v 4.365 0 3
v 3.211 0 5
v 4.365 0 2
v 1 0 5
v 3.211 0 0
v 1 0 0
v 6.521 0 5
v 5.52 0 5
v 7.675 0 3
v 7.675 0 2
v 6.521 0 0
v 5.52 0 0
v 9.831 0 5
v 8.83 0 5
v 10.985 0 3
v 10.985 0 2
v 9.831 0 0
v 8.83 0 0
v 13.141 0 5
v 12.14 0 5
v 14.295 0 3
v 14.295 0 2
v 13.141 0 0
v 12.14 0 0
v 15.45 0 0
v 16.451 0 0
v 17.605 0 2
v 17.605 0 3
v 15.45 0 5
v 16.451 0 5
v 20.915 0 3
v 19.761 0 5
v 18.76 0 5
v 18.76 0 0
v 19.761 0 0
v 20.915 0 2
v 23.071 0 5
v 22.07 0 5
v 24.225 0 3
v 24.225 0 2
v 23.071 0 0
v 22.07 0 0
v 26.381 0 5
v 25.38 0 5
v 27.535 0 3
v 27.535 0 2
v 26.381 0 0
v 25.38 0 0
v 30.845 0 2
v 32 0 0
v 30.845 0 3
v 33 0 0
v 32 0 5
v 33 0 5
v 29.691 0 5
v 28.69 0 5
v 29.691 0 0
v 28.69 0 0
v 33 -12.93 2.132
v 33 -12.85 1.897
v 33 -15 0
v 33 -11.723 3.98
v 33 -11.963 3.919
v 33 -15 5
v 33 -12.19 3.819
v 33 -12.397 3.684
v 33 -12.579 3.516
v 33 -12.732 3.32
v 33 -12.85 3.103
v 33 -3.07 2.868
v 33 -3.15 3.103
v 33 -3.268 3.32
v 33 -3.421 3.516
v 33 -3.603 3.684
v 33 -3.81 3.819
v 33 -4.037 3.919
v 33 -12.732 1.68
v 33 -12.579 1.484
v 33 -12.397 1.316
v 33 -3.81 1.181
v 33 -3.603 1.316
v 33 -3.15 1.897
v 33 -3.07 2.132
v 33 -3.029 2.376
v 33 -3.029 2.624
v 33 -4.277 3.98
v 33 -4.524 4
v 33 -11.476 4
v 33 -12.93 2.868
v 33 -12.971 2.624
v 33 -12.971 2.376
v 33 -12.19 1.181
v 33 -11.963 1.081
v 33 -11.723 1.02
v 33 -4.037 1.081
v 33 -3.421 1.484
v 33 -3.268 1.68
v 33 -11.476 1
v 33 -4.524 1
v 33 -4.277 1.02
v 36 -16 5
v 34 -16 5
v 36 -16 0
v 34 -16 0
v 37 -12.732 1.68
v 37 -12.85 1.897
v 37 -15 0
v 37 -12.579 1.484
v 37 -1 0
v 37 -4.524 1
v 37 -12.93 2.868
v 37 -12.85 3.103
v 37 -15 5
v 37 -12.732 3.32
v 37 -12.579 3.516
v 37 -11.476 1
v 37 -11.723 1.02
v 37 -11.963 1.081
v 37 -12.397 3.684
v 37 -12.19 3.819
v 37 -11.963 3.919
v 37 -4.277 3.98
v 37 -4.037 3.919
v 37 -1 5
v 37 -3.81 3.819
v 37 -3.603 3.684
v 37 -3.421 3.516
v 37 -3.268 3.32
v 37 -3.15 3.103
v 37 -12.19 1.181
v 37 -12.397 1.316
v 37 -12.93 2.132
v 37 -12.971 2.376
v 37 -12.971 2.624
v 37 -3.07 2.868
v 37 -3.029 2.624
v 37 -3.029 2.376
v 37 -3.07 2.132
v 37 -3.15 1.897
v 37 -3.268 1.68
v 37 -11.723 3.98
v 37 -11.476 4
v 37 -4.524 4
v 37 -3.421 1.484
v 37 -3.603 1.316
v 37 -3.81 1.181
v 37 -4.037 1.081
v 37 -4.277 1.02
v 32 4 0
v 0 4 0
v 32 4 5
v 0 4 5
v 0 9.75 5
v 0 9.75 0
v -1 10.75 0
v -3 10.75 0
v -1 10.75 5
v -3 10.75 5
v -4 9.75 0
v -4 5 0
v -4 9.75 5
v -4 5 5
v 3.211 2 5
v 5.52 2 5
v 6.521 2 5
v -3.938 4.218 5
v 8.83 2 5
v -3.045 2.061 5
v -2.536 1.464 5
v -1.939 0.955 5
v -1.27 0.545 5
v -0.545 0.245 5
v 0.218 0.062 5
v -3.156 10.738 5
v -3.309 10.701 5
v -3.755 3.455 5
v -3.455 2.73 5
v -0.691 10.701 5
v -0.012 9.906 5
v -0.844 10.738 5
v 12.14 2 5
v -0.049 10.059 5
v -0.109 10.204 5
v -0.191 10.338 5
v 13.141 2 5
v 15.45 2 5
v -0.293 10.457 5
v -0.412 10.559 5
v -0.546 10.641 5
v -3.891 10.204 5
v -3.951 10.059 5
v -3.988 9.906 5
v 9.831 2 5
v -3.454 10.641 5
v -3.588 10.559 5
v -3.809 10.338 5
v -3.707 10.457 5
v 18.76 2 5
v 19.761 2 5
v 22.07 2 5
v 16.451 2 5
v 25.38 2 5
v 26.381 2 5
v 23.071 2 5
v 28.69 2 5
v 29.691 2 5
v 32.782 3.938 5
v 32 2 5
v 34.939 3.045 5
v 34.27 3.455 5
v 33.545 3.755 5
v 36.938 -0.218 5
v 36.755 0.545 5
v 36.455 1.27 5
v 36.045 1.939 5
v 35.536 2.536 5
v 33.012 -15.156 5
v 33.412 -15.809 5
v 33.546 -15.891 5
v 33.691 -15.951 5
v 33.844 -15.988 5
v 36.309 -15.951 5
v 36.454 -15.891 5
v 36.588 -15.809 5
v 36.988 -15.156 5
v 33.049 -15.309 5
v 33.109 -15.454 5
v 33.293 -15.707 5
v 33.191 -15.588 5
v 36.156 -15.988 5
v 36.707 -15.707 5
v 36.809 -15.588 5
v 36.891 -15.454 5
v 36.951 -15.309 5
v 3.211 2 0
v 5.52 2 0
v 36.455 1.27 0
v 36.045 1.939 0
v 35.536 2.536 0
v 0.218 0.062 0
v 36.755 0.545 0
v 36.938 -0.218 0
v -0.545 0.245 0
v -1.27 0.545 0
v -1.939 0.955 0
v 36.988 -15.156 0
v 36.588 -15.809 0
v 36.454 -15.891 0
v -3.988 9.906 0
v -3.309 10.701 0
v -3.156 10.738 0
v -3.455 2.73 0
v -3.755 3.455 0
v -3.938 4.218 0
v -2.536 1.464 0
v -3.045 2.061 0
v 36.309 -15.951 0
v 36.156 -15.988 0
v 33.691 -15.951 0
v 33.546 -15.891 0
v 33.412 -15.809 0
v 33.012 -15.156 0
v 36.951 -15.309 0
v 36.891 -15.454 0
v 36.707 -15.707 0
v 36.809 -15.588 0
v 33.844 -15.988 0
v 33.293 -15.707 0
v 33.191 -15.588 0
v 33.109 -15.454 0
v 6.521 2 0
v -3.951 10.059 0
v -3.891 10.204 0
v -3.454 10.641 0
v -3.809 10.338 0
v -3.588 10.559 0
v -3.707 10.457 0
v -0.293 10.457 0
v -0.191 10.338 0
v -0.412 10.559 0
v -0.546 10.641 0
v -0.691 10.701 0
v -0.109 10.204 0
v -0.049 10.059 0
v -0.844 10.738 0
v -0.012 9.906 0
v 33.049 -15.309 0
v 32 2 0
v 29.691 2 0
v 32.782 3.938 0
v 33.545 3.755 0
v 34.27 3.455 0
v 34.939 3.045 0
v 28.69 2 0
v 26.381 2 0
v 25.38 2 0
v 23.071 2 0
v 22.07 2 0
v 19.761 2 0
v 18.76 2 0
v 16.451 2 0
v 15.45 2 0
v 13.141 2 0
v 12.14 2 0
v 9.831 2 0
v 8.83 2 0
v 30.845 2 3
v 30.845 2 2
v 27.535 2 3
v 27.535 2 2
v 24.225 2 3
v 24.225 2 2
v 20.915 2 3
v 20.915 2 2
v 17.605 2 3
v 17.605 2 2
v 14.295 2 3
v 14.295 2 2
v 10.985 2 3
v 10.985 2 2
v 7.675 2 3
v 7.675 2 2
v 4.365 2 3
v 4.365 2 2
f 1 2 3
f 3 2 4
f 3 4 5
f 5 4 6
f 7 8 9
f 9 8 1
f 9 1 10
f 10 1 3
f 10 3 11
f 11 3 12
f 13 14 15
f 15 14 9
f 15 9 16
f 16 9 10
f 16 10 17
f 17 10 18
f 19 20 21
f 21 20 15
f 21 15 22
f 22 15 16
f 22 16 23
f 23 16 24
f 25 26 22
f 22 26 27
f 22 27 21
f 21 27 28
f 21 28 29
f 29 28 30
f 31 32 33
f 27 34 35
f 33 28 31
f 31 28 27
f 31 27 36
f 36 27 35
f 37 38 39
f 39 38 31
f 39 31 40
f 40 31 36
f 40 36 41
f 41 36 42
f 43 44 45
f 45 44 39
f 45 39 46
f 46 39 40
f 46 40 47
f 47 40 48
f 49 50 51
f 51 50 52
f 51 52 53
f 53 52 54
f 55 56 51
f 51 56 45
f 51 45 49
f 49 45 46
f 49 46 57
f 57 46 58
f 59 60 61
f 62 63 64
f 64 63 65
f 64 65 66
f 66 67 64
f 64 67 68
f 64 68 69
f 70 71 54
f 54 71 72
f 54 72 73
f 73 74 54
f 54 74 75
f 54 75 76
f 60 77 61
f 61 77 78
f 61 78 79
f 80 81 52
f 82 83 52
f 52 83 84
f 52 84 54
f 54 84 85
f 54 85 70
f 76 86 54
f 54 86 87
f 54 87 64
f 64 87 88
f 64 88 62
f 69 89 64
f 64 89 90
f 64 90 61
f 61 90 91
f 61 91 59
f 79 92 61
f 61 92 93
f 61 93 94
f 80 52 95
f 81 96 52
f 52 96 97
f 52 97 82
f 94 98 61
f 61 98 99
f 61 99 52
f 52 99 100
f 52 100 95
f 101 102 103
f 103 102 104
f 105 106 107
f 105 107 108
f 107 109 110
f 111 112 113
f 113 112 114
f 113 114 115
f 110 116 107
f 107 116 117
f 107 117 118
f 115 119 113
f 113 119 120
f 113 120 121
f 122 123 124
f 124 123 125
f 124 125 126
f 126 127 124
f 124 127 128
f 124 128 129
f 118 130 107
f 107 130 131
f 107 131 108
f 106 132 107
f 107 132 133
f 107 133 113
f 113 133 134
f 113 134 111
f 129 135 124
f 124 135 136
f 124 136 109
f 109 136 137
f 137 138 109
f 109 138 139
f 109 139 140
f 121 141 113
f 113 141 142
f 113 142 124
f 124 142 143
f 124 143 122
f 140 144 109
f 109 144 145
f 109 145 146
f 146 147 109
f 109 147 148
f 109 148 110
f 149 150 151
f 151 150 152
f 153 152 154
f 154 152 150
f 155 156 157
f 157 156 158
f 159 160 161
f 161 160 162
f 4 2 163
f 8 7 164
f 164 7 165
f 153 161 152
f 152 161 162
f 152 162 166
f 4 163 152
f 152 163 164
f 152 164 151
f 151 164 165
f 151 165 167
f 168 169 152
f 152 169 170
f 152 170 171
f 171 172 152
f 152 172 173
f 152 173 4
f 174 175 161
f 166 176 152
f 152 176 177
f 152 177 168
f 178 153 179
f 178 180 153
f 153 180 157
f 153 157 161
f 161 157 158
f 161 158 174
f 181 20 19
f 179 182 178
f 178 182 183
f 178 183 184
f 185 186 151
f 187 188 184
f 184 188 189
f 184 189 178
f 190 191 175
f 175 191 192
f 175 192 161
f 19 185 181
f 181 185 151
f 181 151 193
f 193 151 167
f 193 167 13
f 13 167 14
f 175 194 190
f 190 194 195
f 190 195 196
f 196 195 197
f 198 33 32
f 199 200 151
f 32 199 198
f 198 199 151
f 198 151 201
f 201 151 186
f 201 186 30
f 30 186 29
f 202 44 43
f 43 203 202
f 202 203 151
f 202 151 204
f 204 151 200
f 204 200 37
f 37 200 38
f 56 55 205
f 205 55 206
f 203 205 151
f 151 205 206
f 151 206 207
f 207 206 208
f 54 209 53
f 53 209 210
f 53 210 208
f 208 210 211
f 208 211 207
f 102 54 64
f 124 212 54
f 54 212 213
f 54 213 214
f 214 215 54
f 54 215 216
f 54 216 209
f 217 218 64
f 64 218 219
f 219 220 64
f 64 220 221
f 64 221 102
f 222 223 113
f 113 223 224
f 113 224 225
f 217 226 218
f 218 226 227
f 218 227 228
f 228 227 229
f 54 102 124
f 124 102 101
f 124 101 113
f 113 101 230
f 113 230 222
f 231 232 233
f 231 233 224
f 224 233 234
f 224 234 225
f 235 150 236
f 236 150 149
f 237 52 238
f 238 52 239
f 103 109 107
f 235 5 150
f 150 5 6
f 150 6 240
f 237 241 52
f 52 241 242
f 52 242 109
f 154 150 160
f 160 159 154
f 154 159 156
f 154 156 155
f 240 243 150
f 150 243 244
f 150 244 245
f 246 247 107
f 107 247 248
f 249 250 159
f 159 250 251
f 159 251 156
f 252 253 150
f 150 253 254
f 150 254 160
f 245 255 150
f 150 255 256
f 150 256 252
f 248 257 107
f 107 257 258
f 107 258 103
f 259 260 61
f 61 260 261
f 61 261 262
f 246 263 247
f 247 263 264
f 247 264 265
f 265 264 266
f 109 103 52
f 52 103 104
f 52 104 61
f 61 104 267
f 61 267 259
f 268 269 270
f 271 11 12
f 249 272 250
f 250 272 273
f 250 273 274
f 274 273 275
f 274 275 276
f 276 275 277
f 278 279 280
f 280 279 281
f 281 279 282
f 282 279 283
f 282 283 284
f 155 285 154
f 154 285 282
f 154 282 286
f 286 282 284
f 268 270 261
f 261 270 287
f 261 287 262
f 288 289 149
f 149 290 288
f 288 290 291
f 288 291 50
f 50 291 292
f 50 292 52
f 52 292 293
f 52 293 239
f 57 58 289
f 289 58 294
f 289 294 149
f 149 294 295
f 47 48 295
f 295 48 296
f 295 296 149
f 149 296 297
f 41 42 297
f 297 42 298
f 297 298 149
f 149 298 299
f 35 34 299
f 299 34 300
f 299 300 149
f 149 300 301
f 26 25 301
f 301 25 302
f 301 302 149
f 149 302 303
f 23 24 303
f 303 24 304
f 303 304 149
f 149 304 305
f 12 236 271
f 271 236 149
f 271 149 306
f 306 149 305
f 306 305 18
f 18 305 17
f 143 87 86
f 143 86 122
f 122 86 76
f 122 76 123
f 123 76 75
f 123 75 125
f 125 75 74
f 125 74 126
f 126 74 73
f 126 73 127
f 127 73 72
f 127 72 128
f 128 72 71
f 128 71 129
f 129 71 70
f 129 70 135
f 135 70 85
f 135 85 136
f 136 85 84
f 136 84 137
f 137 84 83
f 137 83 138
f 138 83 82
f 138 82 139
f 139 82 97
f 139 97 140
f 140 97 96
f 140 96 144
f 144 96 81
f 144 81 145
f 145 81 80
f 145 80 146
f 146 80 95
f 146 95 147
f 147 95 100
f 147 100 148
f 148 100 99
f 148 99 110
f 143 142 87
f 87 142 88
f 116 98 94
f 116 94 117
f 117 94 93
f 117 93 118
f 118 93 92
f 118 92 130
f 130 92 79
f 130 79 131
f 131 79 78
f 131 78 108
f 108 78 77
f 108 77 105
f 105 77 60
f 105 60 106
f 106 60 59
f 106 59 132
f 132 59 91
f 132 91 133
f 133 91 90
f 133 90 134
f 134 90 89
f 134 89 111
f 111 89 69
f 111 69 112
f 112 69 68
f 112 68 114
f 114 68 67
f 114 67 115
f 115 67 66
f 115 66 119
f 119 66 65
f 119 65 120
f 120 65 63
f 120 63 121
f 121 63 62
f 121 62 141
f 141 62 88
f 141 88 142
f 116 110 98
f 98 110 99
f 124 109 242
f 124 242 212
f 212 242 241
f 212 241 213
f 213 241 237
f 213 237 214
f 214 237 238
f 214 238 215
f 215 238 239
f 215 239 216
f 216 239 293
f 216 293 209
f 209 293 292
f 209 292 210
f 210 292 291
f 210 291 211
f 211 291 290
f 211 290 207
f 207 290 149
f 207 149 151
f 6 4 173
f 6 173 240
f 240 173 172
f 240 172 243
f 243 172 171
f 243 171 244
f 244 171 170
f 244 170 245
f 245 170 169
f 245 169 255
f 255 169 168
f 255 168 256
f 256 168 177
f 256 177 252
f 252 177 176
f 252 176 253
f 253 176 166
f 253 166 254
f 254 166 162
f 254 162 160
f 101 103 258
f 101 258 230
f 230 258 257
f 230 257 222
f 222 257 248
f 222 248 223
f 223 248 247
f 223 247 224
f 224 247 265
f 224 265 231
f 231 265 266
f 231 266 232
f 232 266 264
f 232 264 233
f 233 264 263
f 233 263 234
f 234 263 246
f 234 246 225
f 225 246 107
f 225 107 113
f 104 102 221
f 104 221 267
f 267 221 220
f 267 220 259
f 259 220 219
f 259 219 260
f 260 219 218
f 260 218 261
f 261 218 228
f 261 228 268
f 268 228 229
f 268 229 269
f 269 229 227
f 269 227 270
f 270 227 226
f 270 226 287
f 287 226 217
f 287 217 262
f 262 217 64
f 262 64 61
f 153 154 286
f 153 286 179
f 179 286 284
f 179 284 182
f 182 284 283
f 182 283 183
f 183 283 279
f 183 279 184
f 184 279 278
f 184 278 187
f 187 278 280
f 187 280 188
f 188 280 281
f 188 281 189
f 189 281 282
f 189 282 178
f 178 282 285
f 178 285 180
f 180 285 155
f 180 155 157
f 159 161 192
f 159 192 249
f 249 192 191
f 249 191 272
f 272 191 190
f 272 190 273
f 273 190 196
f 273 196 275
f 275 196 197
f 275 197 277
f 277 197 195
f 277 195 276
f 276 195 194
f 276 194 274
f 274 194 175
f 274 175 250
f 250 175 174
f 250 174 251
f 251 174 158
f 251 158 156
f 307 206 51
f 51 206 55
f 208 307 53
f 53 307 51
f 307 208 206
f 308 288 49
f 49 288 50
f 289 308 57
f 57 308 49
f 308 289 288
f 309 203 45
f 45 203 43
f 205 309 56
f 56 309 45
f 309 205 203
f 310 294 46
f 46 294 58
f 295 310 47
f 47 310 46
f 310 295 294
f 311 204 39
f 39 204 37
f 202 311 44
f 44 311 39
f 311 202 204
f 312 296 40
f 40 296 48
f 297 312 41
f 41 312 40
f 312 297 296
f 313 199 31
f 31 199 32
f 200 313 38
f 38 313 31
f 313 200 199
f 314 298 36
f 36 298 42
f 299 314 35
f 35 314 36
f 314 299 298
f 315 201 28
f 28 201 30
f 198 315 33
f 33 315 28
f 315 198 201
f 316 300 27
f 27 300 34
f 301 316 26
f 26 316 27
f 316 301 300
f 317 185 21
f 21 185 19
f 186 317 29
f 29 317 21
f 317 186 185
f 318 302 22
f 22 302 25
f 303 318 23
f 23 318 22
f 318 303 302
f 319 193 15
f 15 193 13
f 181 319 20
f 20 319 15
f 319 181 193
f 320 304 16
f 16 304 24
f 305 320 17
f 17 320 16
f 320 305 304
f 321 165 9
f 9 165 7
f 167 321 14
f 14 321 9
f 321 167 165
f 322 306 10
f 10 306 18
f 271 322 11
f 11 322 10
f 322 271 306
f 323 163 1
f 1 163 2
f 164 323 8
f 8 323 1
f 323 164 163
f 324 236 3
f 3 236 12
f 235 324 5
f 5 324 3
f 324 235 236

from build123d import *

# Parameters (mm, degrees)
BOSS_EXTRUDE1_DEPTH = 5
CUT_EXTRUDE1_DEPTH  = 41.620192023
FILLET2_R           = 5
FILLET3_R           = 1
CUT_EXTRUDE2_DEPTH  = 2


with BuildPart() as part:
    # Sketch1 → Boss-Extrude1 (new body)
    with BuildSketch(Plane.XY):
        Polygon((0, 0), (33, 0), (33, -16), (37, -16), (37, 4), (0, 4), (0, 10.75), (-4, 10.75), (-4, 0), align=None)
    extrude(amount=BOSS_EXTRUDE1_DEPTH)

    # Sketch3 → Cut-Extrude1 (cut, through all)
    with BuildSketch(Plane.ZY.offset(-33)):
        with BuildLine():
            Line((4, -4.524146601), (4, -11.475853399))
            ThreePointArc((4, -11.475853399), (2.5, -12.975853399), (1, -11.475853399))
            Line((1, -11.475853399), (1, -4.524146601))
            ThreePointArc((1, -4.524146601), (2.5, -3.024146601), (4, -4.524146601))
        make_face()
    extrude(amount=-CUT_EXTRUDE1_DEPTH, mode=Mode.SUBTRACT)

    # Fillet2
    fillet2_edges = [part.edges().sort_by_distance(p)[0] for p in [
        (-4, 0, 2.5),
        (37, 4, 2.5),
    ]]
    fillet(fillet2_edges, radius=FILLET2_R)

    # Fillet3
    fillet3_edges = [part.edges().sort_by_distance(p)[0] for p in [
        (-4, 10.75, 2.5),
        (0, 10.75, 2.5),
        (37, -16, 2.5),
        (33, -16, 2.5),
    ]]
    fillet(fillet3_edges, radius=FILLET3_R)

    # Sketch4 → Cut-Extrude2 (cut)
    with BuildSketch(Plane(origin=(0, 0, 0), x_dir=(-1, 0, 0), z_dir=(0, -1, 0))):
        Polygon((-30.845299462, -3), (-32, -5), (-29.690598923, -5), align=None)
        Polygon((-30.845299462, -2), (-29.690598923, 0), (-32, 0), align=None)
        Polygon((-27.535299462, -3), (-28.69, -5), (-26.380598923, -5), align=None)
        Polygon((-27.535299462, -2), (-26.380598923, 0), (-28.69, 0), align=None)
        Polygon((-24.225299462, -3), (-25.38, -5), (-23.070598923, -5), align=None)
        Polygon((-24.225299462, -2), (-23.070598923, 0), (-25.38, 0), align=None)
        Polygon((-20.915299462, -3), (-22.07, -5), (-19.760598923, -5), align=None)
        Polygon((-20.915299462, -2), (-19.760598923, 0), (-22.07, 0), align=None)
        Polygon((-17.605299462, -3), (-18.76, -5), (-16.450598923, -5), align=None)
        Polygon((-17.605299462, -2), (-16.450598923, 0), (-18.76, 0), align=None)
        Polygon((-14.295299462, -3), (-15.45, -5), (-13.140598923, -5), align=None)
        Polygon((-14.295299462, -2), (-13.140598923, 0), (-15.45, 0), align=None)
        Polygon((-10.985299462, -3), (-12.14, -5), (-9.830598923, -5), align=None)
        Polygon((-10.985299462, -2), (-9.830598923, 0), (-12.14, 0), align=None)
        Polygon((-7.675299462, -3), (-8.83, -5), (-6.520598923, -5), align=None)
        Polygon((-7.675299462, -2), (-6.520598923, 0), (-8.83, 0), align=None)
        Polygon((-4.365299462, -3), (-5.52, -5), (-3.210598923, -5), align=None)
        Polygon((-4.365299462, -2), (-3.210598923, 0), (-5.52, 0), align=None)
    extrude(amount=-CUT_EXTRUDE2_DEPTH, mode=Mode.SUBTRACT)


solid = part.part
